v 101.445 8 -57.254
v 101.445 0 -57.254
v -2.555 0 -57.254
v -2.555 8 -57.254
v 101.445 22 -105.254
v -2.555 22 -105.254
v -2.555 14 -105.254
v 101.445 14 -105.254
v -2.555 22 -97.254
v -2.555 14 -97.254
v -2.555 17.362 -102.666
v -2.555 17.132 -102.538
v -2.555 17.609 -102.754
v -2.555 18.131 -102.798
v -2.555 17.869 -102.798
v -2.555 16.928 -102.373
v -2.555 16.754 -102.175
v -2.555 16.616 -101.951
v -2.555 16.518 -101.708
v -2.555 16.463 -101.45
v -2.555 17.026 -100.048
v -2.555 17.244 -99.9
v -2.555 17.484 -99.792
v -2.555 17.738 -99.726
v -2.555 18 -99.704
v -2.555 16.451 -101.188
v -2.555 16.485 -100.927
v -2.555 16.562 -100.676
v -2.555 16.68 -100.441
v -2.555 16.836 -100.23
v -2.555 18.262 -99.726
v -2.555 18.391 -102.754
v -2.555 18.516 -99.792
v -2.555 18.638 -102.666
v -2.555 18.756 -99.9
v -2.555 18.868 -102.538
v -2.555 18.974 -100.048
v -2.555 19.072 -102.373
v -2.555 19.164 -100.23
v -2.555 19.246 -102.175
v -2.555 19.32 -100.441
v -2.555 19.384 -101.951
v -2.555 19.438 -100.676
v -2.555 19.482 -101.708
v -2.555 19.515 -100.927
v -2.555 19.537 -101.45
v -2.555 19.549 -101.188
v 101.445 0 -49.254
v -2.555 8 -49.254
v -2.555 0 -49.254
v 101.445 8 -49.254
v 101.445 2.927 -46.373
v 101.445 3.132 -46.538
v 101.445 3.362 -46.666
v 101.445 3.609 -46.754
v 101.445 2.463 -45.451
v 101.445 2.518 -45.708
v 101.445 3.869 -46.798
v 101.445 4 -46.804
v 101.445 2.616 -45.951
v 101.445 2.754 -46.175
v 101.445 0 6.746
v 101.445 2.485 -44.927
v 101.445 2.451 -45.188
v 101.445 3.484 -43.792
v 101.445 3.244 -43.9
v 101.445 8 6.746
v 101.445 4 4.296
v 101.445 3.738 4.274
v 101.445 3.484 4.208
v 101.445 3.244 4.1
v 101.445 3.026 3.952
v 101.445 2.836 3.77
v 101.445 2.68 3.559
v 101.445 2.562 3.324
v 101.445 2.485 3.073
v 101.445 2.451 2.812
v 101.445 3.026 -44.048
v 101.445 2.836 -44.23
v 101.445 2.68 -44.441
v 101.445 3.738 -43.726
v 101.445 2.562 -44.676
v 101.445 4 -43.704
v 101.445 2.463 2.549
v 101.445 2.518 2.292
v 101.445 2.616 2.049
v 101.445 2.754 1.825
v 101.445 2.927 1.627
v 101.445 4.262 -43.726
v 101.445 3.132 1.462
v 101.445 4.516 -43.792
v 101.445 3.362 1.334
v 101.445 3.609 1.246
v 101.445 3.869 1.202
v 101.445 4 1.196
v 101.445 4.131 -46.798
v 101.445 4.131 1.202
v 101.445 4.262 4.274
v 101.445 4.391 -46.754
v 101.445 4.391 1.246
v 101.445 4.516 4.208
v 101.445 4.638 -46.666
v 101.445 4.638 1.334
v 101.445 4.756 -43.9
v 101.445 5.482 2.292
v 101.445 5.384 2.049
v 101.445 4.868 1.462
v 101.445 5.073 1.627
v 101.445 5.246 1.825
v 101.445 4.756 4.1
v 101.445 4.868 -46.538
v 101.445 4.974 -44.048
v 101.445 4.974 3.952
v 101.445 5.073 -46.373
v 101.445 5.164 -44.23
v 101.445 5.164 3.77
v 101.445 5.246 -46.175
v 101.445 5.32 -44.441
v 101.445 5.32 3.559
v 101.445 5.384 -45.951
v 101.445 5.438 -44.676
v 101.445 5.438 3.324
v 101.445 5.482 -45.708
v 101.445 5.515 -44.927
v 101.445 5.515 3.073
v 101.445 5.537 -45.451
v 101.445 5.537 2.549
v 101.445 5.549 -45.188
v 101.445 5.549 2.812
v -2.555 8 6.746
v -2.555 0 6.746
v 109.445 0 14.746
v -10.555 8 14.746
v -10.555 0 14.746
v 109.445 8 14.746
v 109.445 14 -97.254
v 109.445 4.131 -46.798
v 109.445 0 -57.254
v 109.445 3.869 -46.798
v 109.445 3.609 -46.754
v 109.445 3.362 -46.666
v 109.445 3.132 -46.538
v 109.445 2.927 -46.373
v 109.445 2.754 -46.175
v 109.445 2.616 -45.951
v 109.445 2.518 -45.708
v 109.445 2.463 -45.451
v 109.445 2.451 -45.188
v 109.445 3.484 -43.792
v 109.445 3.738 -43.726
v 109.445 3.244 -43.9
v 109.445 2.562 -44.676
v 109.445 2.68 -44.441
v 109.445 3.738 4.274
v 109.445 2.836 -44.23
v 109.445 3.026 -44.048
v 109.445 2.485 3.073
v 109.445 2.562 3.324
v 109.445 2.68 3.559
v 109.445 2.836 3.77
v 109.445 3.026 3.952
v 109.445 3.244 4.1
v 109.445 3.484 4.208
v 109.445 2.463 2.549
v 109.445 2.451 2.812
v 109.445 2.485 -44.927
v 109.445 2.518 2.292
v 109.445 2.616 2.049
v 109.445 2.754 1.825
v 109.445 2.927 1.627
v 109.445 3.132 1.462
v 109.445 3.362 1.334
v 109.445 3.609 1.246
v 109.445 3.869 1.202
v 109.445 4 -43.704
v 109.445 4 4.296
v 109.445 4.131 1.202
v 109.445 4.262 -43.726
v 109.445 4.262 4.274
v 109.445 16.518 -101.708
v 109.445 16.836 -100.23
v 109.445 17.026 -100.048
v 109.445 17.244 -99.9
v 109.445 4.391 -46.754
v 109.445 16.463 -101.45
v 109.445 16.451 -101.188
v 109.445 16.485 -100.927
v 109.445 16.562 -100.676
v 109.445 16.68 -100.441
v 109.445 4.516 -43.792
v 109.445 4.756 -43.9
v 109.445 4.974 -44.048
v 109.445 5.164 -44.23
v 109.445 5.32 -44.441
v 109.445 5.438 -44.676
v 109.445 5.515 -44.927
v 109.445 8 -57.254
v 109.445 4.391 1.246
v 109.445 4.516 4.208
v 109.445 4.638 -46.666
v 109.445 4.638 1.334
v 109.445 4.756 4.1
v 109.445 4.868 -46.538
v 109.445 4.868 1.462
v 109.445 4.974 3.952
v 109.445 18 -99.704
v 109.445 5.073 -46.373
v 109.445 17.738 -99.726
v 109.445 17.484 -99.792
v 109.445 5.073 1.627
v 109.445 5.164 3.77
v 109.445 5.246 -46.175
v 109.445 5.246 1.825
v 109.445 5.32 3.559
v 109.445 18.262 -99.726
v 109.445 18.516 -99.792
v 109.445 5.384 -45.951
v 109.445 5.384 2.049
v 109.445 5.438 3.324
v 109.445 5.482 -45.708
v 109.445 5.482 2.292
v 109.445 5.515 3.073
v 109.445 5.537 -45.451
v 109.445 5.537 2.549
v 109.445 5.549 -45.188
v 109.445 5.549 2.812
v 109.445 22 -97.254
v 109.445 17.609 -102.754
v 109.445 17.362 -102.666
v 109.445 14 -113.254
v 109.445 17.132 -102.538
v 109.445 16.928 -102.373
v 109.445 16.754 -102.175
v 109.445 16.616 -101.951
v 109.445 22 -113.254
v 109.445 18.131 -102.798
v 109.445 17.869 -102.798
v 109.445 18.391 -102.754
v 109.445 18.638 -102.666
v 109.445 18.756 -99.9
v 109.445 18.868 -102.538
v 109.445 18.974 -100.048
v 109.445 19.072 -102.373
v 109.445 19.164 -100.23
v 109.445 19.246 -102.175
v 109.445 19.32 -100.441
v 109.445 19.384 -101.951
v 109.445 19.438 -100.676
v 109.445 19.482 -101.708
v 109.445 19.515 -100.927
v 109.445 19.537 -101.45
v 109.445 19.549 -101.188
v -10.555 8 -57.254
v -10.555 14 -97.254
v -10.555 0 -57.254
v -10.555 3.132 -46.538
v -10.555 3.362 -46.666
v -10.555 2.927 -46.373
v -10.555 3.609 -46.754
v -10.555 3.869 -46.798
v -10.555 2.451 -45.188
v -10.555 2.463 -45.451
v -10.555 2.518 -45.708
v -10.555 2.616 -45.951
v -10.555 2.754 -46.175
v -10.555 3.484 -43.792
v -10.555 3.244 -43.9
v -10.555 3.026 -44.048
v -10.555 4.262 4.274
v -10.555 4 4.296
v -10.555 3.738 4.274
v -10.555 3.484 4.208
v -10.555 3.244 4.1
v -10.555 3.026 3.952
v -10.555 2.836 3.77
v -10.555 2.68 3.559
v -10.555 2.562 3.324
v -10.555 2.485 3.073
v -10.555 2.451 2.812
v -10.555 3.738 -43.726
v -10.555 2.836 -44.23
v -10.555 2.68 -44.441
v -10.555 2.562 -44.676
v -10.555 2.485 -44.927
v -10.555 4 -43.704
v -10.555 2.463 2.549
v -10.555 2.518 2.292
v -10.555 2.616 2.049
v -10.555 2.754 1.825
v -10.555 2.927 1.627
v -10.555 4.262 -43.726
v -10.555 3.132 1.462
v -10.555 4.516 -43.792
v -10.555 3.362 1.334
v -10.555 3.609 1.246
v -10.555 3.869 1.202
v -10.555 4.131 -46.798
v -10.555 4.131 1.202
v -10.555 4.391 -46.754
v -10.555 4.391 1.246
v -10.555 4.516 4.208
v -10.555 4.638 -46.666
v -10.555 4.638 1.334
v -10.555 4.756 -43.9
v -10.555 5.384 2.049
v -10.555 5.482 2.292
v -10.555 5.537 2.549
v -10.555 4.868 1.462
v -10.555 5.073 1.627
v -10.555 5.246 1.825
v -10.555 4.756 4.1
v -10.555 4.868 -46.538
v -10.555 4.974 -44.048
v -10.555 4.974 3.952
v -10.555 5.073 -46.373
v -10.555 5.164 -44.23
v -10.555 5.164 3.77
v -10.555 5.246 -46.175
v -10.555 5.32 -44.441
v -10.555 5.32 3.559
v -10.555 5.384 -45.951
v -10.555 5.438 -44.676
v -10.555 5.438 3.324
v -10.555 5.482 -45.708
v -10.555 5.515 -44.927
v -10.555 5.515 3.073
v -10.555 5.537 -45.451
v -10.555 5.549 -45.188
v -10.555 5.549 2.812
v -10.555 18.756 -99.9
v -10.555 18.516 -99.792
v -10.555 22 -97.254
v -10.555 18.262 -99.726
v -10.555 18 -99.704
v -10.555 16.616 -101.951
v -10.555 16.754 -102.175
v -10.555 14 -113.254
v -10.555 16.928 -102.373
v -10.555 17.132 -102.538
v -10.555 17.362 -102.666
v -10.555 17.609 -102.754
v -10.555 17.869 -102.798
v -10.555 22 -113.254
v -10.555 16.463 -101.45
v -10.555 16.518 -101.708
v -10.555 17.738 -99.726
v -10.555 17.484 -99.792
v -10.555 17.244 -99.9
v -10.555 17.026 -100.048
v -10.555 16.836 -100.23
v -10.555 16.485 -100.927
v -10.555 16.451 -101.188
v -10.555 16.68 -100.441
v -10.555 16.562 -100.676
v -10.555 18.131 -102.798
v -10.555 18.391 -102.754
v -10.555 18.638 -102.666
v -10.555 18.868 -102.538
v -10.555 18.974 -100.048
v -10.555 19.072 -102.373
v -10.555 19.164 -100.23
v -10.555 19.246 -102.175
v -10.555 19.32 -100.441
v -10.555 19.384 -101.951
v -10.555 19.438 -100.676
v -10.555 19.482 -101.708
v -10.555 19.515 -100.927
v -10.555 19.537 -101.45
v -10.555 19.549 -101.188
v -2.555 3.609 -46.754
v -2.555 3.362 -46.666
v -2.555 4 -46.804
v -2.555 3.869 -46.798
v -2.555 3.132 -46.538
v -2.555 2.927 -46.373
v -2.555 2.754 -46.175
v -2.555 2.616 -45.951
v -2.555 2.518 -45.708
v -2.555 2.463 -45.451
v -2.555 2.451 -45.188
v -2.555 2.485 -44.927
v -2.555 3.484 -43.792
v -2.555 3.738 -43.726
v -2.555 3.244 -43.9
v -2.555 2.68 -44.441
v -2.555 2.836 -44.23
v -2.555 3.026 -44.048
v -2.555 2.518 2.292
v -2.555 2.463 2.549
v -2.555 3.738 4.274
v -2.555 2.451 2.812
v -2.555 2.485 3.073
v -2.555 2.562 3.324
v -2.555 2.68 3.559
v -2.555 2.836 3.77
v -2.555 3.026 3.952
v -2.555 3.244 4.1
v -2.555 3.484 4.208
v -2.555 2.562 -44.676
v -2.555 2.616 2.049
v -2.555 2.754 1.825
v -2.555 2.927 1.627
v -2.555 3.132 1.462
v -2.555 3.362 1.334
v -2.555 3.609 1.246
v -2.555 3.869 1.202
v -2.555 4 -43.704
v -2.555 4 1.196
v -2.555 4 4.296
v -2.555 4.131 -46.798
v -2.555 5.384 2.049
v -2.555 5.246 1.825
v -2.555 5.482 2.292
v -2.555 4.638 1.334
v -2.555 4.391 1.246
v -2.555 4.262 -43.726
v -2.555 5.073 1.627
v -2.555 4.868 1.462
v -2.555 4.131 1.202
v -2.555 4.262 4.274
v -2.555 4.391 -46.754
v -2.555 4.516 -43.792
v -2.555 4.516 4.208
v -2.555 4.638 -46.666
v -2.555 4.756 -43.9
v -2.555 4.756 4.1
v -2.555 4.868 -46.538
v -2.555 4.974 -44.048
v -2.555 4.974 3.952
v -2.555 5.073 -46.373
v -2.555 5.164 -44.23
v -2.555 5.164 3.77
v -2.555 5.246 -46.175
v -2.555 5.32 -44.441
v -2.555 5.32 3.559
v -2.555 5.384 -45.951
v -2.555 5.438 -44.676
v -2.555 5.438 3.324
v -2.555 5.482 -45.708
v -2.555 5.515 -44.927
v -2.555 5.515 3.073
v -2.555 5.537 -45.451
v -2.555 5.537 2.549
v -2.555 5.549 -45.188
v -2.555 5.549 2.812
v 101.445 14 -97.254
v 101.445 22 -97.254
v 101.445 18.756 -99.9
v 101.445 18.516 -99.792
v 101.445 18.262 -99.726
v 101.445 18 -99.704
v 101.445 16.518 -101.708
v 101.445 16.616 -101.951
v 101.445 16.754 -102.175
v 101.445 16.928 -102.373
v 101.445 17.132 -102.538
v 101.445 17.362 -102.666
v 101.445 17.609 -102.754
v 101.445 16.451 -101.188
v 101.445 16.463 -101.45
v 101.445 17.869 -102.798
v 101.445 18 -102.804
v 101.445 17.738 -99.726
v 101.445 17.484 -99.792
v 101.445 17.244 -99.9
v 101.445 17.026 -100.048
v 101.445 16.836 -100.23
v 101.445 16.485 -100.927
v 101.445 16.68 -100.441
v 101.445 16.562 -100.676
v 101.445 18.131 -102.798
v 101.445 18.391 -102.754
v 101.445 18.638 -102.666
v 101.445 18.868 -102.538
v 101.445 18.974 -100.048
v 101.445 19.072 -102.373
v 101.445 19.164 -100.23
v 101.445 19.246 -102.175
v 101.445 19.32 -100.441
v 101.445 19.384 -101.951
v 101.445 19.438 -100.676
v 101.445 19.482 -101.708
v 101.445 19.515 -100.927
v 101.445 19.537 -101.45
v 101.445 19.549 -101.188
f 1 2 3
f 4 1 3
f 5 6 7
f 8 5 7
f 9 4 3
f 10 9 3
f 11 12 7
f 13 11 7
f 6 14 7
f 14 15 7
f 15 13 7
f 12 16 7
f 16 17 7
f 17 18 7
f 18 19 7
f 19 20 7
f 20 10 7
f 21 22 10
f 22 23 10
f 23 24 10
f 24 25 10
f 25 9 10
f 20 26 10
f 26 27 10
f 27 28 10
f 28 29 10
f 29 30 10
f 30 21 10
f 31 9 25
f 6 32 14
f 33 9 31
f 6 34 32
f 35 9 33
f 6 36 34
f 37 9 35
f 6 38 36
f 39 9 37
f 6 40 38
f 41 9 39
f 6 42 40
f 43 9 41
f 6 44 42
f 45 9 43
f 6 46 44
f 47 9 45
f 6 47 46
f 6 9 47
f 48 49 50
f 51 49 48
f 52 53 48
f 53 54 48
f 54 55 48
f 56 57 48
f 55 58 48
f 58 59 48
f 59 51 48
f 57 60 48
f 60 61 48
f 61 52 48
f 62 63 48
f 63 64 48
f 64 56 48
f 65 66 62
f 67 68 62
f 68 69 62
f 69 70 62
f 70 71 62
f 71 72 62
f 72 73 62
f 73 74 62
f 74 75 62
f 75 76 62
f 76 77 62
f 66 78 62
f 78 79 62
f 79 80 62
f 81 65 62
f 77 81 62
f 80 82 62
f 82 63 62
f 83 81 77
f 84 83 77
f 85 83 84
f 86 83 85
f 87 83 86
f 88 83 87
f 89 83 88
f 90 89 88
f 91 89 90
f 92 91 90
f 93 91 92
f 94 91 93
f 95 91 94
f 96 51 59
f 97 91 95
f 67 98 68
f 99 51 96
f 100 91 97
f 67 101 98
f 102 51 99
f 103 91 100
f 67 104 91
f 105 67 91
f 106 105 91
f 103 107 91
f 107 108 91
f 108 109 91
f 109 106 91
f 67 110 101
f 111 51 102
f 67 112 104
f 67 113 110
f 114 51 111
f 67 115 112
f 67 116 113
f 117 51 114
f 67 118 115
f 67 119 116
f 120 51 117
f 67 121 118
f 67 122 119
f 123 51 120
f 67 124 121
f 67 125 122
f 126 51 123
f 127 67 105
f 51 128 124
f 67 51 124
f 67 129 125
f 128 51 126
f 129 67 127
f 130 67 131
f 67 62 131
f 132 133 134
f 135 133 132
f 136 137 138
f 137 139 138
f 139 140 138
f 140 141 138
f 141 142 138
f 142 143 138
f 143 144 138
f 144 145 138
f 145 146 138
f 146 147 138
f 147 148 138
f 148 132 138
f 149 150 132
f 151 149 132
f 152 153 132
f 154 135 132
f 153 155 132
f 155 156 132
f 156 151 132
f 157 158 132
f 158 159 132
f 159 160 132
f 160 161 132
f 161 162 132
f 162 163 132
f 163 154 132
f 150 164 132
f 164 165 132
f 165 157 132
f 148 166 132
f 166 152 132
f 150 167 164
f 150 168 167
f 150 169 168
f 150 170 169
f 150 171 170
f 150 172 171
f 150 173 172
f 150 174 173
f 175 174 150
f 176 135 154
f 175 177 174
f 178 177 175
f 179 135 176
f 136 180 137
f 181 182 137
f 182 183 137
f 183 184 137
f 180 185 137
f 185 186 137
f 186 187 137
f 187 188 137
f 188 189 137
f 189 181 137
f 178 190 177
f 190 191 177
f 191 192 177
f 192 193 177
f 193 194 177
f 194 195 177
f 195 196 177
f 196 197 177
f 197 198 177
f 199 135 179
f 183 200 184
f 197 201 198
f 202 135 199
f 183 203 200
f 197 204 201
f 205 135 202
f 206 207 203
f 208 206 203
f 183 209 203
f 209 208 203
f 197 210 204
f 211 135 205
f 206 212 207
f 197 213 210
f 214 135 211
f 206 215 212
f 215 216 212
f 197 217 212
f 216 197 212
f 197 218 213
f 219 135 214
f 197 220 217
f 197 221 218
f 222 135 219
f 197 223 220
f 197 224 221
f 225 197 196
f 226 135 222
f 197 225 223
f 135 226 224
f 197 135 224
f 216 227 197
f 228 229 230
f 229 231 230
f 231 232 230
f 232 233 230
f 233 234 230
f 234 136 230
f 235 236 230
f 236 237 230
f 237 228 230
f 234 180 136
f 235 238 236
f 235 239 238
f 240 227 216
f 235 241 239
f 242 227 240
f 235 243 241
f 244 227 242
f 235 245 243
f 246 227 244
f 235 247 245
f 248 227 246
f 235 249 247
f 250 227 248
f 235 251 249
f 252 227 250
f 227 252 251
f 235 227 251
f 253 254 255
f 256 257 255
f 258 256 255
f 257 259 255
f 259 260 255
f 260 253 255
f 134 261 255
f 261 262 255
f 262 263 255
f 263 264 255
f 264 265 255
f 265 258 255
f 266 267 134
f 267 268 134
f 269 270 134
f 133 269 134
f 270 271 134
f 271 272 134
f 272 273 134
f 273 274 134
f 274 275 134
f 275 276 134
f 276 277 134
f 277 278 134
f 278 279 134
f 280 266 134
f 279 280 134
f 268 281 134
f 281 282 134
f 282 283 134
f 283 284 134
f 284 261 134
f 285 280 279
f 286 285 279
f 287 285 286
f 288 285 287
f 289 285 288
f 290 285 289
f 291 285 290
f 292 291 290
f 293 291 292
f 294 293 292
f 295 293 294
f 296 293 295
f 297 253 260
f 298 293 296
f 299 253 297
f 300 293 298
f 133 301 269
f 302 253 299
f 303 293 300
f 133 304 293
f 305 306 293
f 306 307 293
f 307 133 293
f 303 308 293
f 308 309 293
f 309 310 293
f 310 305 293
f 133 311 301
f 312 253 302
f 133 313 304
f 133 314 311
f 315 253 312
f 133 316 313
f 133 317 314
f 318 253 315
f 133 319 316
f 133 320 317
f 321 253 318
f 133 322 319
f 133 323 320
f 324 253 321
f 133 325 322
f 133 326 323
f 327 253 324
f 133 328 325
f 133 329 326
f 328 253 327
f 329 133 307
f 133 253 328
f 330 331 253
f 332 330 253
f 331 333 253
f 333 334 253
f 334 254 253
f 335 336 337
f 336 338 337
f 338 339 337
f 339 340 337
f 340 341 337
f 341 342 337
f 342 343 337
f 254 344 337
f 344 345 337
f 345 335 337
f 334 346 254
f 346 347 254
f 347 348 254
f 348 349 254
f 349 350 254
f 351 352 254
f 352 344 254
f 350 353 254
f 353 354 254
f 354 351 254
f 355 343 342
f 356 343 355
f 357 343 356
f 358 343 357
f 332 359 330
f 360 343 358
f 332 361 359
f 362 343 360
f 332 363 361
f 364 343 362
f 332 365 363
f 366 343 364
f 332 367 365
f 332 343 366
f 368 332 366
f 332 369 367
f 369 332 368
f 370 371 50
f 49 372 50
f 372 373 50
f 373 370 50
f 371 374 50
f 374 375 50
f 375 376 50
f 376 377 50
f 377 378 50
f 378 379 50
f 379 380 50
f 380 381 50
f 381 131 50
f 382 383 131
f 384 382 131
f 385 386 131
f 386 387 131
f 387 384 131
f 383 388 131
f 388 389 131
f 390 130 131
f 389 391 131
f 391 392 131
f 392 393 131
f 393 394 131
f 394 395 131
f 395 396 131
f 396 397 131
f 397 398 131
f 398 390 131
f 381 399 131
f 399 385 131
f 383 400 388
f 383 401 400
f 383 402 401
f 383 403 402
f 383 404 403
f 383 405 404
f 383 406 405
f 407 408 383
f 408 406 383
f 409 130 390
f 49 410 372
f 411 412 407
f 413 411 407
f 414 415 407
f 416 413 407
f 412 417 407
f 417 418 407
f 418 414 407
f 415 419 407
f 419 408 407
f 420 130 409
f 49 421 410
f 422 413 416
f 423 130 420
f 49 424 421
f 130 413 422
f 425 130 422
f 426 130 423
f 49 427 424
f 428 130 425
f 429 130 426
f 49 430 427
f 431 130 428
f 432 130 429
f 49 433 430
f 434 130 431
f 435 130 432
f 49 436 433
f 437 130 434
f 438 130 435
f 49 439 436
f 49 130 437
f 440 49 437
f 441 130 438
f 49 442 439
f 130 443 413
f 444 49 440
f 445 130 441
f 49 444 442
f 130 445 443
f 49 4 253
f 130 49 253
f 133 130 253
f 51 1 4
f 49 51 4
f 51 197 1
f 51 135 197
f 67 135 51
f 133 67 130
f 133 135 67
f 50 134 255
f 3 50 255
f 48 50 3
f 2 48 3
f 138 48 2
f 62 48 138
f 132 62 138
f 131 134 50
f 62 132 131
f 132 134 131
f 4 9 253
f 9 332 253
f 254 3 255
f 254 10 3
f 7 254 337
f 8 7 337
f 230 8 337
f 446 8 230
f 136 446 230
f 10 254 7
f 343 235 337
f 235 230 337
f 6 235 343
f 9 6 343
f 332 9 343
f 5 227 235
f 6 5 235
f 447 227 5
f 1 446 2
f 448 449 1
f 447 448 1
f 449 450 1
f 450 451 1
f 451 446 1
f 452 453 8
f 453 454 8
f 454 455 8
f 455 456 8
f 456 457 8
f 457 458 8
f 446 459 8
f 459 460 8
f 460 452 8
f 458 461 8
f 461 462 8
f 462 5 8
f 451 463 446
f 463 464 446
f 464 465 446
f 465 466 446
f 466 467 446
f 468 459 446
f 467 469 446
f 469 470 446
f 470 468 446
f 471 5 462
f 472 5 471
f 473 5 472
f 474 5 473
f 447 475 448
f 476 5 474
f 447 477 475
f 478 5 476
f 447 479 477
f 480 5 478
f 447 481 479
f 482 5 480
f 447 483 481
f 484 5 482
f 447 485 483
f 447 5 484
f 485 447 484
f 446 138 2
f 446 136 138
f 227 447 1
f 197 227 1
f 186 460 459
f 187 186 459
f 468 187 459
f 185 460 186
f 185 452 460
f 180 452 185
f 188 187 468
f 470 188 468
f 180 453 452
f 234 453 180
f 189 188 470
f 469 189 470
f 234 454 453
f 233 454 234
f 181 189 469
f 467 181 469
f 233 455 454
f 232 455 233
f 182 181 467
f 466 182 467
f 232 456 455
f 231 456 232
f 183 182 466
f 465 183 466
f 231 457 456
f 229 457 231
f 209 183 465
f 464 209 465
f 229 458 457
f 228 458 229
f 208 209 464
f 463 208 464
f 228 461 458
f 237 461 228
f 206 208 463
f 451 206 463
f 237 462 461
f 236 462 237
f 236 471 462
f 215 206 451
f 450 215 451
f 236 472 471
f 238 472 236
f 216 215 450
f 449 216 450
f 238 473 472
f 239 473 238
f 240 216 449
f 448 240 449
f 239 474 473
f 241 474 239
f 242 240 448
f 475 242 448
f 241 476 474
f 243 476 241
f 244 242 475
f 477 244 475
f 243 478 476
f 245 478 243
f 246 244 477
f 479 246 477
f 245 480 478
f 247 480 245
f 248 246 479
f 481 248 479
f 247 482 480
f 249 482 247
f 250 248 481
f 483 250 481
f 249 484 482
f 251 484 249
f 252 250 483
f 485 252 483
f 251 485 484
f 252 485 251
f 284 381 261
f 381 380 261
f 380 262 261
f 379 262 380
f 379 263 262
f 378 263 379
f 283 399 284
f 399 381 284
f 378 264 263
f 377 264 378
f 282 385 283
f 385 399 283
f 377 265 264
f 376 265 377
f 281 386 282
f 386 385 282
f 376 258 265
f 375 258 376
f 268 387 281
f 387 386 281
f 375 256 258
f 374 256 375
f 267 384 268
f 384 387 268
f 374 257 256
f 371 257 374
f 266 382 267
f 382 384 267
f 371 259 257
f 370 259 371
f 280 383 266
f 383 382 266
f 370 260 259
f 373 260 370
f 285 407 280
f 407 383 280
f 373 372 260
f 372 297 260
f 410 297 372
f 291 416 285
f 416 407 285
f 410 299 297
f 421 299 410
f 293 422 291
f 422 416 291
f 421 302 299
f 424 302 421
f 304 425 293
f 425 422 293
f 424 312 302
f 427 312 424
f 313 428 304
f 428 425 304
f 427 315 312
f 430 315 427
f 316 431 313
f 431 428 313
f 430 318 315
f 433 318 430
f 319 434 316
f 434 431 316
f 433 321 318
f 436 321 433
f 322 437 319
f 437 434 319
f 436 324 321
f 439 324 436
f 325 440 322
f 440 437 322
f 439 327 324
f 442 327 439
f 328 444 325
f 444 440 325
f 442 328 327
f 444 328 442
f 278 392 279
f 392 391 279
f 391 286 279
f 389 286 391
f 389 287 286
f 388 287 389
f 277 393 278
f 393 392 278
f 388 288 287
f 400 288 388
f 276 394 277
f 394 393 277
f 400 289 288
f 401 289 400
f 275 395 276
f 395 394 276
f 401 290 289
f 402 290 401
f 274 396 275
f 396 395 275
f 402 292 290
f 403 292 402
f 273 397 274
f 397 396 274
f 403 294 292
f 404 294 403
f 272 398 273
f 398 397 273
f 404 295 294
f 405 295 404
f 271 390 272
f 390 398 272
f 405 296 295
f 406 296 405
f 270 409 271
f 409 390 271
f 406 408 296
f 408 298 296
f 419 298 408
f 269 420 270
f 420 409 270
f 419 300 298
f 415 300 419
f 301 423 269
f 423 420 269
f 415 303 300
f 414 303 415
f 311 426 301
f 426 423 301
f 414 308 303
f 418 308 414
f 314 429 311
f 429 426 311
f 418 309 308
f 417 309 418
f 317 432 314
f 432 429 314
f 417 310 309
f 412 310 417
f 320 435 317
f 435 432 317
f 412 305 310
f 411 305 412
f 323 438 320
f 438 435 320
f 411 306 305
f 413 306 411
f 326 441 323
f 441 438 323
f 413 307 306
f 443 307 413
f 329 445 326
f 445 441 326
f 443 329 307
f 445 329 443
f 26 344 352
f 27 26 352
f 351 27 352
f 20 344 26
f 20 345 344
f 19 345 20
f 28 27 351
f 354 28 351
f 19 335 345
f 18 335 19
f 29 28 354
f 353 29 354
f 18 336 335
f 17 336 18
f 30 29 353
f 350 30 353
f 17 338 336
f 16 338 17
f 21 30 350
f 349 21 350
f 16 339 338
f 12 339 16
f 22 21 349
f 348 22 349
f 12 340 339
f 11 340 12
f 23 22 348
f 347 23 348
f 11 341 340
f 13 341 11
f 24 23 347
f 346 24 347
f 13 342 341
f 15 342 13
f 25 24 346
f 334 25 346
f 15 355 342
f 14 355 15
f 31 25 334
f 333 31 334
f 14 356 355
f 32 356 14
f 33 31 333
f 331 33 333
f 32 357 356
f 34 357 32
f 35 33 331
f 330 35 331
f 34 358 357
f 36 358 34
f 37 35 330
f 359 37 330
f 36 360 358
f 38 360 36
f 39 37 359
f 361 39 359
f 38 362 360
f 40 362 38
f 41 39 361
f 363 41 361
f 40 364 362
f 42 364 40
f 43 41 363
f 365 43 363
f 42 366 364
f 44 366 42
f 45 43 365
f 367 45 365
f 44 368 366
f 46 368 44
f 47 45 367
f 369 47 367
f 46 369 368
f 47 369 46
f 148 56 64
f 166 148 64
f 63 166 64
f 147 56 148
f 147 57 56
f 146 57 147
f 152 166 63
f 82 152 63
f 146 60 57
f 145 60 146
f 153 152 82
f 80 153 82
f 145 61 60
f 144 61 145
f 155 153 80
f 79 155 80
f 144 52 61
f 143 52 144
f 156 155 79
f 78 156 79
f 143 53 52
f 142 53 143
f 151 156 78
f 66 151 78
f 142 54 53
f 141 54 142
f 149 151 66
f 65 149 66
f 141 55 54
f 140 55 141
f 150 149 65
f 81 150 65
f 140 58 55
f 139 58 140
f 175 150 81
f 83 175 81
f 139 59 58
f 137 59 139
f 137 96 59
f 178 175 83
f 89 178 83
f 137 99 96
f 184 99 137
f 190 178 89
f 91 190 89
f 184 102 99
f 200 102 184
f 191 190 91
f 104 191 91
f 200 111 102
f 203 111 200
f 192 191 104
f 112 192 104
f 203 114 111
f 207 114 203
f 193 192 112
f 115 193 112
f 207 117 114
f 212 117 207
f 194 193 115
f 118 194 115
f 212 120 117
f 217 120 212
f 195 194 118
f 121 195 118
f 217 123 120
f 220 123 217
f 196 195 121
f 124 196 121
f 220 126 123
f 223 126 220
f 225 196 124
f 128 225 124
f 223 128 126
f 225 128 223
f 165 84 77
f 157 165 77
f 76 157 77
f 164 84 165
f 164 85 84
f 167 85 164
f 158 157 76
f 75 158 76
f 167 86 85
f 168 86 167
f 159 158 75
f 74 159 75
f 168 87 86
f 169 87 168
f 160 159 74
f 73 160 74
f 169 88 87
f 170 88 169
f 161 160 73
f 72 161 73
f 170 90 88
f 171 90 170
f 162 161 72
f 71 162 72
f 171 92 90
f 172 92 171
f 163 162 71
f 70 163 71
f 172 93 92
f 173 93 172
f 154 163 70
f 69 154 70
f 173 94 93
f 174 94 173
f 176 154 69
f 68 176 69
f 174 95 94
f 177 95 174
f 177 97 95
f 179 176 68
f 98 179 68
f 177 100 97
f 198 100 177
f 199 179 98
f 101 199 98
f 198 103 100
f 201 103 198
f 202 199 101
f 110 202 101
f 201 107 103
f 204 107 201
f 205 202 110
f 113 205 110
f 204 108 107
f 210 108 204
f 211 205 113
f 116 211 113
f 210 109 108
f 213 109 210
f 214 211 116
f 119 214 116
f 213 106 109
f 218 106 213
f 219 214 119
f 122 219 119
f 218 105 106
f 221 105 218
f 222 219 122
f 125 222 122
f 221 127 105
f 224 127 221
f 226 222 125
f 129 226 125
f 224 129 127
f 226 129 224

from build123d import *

# Parameters (mm, degrees)
BOSS_EXTRUDE1_OUTLINE_W   = 120
BOSS_EXTRUDE1_OUTLINE_H   = 72
BOSS_EXTRUDE1_OUTLINE_W_2 = 104
BOSS_EXTRUDE1_OUTLINE_H_2 = 56
BOSS_EXTRUDE1_DEPTH       = 8
SKETCH3_W                 = 16
SKETCH3_H                 = 8
BOSS_EXTRUDE2_DEPTH       = 8
SKETCH4_W                 = 8
SKETCH4_H                 = 8
BOSS_EXTRUDE3_DEPTH       = 110
SKETCH5_W                 = 16
SKETCH5_H                 = 8
BOSS_EXTRUDE4_DEPTH       = 8
SKETCH6_R                 = 1.55
CUT_EXTRUDE1_DEPTH        = 211


# Read off the part's stored shape, not the designer's step: Boss-Extrude1
with BuildPart() as part:
    # Boss-Extrude1 outline → Boss-Extrude1 (new body)
    with BuildSketch(Plane(origin=(0, 0, 0), x_dir=(1, 0, 0), z_dir=(0, 1, 0))):
        with Locations((49.44492245, 21.253637361)):
            Rectangle(BOSS_EXTRUDE1_OUTLINE_W, BOSS_EXTRUDE1_OUTLINE_H)
        with Locations((49.44492245, 21.253637361)):
            Rectangle(BOSS_EXTRUDE1_OUTLINE_W_2, BOSS_EXTRUDE1_OUTLINE_H_2, mode=Mode.SUBTRACT)
    extrude(amount=BOSS_EXTRUDE1_DEPTH)

    # Sketch3 → Boss-Extrude2 (add)
    with BuildSketch(Plane.ZY.offset(10.55507755)):
        Polygon((-97.253637361, 14), (-97.253637361, 22), (-57.253637361, 8), (-57.253637361, 0), align=None)
        with Locations((-105.253637361, 18)):
            Rectangle(SKETCH3_W, SKETCH3_H)
    extrude(amount=-BOSS_EXTRUDE2_DEPTH)

    # Sketch4 → Boss-Extrude3 (add)
    with BuildSketch(Plane(origin=(-2.55507755, 0, 0), x_dir=(0, 0, -1), z_dir=(1, 0, 0))):
        with Locations((109.253637361, 18)):
            Rectangle(SKETCH4_W, SKETCH4_H)
    extrude(amount=BOSS_EXTRUDE3_DEPTH)

    # Sketch5 → Boss-Extrude4 (add)
    with BuildSketch(Plane(origin=(109.44492245, 0, 0), x_dir=(0, 0, -1), z_dir=(1, 0, 0))):
        Polygon((57.253637361, 0), (97.253637361, 14), (97.253637361, 22), (57.253637361, 8), align=None)
        with Locations((105.253637361, 18)):
            Rectangle(SKETCH5_W, SKETCH5_H)
    extrude(amount=-BOSS_EXTRUDE4_DEPTH)

    # Sketch6 → Cut-Extrude1 (cut)
    with BuildSketch(Plane.ZY.offset(10.55507755)):
        with Locations((2.746362639, 4)):
            Circle(SKETCH6_R)
        with Locations((-45.253637361, 4)):
            Circle(SKETCH6_R)
        with Locations((-101.253637361, 18)):
            Circle(SKETCH6_R)
    extrude(amount=-CUT_EXTRUDE1_DEPTH, mode=Mode.SUBTRACT)


solid = part.part
